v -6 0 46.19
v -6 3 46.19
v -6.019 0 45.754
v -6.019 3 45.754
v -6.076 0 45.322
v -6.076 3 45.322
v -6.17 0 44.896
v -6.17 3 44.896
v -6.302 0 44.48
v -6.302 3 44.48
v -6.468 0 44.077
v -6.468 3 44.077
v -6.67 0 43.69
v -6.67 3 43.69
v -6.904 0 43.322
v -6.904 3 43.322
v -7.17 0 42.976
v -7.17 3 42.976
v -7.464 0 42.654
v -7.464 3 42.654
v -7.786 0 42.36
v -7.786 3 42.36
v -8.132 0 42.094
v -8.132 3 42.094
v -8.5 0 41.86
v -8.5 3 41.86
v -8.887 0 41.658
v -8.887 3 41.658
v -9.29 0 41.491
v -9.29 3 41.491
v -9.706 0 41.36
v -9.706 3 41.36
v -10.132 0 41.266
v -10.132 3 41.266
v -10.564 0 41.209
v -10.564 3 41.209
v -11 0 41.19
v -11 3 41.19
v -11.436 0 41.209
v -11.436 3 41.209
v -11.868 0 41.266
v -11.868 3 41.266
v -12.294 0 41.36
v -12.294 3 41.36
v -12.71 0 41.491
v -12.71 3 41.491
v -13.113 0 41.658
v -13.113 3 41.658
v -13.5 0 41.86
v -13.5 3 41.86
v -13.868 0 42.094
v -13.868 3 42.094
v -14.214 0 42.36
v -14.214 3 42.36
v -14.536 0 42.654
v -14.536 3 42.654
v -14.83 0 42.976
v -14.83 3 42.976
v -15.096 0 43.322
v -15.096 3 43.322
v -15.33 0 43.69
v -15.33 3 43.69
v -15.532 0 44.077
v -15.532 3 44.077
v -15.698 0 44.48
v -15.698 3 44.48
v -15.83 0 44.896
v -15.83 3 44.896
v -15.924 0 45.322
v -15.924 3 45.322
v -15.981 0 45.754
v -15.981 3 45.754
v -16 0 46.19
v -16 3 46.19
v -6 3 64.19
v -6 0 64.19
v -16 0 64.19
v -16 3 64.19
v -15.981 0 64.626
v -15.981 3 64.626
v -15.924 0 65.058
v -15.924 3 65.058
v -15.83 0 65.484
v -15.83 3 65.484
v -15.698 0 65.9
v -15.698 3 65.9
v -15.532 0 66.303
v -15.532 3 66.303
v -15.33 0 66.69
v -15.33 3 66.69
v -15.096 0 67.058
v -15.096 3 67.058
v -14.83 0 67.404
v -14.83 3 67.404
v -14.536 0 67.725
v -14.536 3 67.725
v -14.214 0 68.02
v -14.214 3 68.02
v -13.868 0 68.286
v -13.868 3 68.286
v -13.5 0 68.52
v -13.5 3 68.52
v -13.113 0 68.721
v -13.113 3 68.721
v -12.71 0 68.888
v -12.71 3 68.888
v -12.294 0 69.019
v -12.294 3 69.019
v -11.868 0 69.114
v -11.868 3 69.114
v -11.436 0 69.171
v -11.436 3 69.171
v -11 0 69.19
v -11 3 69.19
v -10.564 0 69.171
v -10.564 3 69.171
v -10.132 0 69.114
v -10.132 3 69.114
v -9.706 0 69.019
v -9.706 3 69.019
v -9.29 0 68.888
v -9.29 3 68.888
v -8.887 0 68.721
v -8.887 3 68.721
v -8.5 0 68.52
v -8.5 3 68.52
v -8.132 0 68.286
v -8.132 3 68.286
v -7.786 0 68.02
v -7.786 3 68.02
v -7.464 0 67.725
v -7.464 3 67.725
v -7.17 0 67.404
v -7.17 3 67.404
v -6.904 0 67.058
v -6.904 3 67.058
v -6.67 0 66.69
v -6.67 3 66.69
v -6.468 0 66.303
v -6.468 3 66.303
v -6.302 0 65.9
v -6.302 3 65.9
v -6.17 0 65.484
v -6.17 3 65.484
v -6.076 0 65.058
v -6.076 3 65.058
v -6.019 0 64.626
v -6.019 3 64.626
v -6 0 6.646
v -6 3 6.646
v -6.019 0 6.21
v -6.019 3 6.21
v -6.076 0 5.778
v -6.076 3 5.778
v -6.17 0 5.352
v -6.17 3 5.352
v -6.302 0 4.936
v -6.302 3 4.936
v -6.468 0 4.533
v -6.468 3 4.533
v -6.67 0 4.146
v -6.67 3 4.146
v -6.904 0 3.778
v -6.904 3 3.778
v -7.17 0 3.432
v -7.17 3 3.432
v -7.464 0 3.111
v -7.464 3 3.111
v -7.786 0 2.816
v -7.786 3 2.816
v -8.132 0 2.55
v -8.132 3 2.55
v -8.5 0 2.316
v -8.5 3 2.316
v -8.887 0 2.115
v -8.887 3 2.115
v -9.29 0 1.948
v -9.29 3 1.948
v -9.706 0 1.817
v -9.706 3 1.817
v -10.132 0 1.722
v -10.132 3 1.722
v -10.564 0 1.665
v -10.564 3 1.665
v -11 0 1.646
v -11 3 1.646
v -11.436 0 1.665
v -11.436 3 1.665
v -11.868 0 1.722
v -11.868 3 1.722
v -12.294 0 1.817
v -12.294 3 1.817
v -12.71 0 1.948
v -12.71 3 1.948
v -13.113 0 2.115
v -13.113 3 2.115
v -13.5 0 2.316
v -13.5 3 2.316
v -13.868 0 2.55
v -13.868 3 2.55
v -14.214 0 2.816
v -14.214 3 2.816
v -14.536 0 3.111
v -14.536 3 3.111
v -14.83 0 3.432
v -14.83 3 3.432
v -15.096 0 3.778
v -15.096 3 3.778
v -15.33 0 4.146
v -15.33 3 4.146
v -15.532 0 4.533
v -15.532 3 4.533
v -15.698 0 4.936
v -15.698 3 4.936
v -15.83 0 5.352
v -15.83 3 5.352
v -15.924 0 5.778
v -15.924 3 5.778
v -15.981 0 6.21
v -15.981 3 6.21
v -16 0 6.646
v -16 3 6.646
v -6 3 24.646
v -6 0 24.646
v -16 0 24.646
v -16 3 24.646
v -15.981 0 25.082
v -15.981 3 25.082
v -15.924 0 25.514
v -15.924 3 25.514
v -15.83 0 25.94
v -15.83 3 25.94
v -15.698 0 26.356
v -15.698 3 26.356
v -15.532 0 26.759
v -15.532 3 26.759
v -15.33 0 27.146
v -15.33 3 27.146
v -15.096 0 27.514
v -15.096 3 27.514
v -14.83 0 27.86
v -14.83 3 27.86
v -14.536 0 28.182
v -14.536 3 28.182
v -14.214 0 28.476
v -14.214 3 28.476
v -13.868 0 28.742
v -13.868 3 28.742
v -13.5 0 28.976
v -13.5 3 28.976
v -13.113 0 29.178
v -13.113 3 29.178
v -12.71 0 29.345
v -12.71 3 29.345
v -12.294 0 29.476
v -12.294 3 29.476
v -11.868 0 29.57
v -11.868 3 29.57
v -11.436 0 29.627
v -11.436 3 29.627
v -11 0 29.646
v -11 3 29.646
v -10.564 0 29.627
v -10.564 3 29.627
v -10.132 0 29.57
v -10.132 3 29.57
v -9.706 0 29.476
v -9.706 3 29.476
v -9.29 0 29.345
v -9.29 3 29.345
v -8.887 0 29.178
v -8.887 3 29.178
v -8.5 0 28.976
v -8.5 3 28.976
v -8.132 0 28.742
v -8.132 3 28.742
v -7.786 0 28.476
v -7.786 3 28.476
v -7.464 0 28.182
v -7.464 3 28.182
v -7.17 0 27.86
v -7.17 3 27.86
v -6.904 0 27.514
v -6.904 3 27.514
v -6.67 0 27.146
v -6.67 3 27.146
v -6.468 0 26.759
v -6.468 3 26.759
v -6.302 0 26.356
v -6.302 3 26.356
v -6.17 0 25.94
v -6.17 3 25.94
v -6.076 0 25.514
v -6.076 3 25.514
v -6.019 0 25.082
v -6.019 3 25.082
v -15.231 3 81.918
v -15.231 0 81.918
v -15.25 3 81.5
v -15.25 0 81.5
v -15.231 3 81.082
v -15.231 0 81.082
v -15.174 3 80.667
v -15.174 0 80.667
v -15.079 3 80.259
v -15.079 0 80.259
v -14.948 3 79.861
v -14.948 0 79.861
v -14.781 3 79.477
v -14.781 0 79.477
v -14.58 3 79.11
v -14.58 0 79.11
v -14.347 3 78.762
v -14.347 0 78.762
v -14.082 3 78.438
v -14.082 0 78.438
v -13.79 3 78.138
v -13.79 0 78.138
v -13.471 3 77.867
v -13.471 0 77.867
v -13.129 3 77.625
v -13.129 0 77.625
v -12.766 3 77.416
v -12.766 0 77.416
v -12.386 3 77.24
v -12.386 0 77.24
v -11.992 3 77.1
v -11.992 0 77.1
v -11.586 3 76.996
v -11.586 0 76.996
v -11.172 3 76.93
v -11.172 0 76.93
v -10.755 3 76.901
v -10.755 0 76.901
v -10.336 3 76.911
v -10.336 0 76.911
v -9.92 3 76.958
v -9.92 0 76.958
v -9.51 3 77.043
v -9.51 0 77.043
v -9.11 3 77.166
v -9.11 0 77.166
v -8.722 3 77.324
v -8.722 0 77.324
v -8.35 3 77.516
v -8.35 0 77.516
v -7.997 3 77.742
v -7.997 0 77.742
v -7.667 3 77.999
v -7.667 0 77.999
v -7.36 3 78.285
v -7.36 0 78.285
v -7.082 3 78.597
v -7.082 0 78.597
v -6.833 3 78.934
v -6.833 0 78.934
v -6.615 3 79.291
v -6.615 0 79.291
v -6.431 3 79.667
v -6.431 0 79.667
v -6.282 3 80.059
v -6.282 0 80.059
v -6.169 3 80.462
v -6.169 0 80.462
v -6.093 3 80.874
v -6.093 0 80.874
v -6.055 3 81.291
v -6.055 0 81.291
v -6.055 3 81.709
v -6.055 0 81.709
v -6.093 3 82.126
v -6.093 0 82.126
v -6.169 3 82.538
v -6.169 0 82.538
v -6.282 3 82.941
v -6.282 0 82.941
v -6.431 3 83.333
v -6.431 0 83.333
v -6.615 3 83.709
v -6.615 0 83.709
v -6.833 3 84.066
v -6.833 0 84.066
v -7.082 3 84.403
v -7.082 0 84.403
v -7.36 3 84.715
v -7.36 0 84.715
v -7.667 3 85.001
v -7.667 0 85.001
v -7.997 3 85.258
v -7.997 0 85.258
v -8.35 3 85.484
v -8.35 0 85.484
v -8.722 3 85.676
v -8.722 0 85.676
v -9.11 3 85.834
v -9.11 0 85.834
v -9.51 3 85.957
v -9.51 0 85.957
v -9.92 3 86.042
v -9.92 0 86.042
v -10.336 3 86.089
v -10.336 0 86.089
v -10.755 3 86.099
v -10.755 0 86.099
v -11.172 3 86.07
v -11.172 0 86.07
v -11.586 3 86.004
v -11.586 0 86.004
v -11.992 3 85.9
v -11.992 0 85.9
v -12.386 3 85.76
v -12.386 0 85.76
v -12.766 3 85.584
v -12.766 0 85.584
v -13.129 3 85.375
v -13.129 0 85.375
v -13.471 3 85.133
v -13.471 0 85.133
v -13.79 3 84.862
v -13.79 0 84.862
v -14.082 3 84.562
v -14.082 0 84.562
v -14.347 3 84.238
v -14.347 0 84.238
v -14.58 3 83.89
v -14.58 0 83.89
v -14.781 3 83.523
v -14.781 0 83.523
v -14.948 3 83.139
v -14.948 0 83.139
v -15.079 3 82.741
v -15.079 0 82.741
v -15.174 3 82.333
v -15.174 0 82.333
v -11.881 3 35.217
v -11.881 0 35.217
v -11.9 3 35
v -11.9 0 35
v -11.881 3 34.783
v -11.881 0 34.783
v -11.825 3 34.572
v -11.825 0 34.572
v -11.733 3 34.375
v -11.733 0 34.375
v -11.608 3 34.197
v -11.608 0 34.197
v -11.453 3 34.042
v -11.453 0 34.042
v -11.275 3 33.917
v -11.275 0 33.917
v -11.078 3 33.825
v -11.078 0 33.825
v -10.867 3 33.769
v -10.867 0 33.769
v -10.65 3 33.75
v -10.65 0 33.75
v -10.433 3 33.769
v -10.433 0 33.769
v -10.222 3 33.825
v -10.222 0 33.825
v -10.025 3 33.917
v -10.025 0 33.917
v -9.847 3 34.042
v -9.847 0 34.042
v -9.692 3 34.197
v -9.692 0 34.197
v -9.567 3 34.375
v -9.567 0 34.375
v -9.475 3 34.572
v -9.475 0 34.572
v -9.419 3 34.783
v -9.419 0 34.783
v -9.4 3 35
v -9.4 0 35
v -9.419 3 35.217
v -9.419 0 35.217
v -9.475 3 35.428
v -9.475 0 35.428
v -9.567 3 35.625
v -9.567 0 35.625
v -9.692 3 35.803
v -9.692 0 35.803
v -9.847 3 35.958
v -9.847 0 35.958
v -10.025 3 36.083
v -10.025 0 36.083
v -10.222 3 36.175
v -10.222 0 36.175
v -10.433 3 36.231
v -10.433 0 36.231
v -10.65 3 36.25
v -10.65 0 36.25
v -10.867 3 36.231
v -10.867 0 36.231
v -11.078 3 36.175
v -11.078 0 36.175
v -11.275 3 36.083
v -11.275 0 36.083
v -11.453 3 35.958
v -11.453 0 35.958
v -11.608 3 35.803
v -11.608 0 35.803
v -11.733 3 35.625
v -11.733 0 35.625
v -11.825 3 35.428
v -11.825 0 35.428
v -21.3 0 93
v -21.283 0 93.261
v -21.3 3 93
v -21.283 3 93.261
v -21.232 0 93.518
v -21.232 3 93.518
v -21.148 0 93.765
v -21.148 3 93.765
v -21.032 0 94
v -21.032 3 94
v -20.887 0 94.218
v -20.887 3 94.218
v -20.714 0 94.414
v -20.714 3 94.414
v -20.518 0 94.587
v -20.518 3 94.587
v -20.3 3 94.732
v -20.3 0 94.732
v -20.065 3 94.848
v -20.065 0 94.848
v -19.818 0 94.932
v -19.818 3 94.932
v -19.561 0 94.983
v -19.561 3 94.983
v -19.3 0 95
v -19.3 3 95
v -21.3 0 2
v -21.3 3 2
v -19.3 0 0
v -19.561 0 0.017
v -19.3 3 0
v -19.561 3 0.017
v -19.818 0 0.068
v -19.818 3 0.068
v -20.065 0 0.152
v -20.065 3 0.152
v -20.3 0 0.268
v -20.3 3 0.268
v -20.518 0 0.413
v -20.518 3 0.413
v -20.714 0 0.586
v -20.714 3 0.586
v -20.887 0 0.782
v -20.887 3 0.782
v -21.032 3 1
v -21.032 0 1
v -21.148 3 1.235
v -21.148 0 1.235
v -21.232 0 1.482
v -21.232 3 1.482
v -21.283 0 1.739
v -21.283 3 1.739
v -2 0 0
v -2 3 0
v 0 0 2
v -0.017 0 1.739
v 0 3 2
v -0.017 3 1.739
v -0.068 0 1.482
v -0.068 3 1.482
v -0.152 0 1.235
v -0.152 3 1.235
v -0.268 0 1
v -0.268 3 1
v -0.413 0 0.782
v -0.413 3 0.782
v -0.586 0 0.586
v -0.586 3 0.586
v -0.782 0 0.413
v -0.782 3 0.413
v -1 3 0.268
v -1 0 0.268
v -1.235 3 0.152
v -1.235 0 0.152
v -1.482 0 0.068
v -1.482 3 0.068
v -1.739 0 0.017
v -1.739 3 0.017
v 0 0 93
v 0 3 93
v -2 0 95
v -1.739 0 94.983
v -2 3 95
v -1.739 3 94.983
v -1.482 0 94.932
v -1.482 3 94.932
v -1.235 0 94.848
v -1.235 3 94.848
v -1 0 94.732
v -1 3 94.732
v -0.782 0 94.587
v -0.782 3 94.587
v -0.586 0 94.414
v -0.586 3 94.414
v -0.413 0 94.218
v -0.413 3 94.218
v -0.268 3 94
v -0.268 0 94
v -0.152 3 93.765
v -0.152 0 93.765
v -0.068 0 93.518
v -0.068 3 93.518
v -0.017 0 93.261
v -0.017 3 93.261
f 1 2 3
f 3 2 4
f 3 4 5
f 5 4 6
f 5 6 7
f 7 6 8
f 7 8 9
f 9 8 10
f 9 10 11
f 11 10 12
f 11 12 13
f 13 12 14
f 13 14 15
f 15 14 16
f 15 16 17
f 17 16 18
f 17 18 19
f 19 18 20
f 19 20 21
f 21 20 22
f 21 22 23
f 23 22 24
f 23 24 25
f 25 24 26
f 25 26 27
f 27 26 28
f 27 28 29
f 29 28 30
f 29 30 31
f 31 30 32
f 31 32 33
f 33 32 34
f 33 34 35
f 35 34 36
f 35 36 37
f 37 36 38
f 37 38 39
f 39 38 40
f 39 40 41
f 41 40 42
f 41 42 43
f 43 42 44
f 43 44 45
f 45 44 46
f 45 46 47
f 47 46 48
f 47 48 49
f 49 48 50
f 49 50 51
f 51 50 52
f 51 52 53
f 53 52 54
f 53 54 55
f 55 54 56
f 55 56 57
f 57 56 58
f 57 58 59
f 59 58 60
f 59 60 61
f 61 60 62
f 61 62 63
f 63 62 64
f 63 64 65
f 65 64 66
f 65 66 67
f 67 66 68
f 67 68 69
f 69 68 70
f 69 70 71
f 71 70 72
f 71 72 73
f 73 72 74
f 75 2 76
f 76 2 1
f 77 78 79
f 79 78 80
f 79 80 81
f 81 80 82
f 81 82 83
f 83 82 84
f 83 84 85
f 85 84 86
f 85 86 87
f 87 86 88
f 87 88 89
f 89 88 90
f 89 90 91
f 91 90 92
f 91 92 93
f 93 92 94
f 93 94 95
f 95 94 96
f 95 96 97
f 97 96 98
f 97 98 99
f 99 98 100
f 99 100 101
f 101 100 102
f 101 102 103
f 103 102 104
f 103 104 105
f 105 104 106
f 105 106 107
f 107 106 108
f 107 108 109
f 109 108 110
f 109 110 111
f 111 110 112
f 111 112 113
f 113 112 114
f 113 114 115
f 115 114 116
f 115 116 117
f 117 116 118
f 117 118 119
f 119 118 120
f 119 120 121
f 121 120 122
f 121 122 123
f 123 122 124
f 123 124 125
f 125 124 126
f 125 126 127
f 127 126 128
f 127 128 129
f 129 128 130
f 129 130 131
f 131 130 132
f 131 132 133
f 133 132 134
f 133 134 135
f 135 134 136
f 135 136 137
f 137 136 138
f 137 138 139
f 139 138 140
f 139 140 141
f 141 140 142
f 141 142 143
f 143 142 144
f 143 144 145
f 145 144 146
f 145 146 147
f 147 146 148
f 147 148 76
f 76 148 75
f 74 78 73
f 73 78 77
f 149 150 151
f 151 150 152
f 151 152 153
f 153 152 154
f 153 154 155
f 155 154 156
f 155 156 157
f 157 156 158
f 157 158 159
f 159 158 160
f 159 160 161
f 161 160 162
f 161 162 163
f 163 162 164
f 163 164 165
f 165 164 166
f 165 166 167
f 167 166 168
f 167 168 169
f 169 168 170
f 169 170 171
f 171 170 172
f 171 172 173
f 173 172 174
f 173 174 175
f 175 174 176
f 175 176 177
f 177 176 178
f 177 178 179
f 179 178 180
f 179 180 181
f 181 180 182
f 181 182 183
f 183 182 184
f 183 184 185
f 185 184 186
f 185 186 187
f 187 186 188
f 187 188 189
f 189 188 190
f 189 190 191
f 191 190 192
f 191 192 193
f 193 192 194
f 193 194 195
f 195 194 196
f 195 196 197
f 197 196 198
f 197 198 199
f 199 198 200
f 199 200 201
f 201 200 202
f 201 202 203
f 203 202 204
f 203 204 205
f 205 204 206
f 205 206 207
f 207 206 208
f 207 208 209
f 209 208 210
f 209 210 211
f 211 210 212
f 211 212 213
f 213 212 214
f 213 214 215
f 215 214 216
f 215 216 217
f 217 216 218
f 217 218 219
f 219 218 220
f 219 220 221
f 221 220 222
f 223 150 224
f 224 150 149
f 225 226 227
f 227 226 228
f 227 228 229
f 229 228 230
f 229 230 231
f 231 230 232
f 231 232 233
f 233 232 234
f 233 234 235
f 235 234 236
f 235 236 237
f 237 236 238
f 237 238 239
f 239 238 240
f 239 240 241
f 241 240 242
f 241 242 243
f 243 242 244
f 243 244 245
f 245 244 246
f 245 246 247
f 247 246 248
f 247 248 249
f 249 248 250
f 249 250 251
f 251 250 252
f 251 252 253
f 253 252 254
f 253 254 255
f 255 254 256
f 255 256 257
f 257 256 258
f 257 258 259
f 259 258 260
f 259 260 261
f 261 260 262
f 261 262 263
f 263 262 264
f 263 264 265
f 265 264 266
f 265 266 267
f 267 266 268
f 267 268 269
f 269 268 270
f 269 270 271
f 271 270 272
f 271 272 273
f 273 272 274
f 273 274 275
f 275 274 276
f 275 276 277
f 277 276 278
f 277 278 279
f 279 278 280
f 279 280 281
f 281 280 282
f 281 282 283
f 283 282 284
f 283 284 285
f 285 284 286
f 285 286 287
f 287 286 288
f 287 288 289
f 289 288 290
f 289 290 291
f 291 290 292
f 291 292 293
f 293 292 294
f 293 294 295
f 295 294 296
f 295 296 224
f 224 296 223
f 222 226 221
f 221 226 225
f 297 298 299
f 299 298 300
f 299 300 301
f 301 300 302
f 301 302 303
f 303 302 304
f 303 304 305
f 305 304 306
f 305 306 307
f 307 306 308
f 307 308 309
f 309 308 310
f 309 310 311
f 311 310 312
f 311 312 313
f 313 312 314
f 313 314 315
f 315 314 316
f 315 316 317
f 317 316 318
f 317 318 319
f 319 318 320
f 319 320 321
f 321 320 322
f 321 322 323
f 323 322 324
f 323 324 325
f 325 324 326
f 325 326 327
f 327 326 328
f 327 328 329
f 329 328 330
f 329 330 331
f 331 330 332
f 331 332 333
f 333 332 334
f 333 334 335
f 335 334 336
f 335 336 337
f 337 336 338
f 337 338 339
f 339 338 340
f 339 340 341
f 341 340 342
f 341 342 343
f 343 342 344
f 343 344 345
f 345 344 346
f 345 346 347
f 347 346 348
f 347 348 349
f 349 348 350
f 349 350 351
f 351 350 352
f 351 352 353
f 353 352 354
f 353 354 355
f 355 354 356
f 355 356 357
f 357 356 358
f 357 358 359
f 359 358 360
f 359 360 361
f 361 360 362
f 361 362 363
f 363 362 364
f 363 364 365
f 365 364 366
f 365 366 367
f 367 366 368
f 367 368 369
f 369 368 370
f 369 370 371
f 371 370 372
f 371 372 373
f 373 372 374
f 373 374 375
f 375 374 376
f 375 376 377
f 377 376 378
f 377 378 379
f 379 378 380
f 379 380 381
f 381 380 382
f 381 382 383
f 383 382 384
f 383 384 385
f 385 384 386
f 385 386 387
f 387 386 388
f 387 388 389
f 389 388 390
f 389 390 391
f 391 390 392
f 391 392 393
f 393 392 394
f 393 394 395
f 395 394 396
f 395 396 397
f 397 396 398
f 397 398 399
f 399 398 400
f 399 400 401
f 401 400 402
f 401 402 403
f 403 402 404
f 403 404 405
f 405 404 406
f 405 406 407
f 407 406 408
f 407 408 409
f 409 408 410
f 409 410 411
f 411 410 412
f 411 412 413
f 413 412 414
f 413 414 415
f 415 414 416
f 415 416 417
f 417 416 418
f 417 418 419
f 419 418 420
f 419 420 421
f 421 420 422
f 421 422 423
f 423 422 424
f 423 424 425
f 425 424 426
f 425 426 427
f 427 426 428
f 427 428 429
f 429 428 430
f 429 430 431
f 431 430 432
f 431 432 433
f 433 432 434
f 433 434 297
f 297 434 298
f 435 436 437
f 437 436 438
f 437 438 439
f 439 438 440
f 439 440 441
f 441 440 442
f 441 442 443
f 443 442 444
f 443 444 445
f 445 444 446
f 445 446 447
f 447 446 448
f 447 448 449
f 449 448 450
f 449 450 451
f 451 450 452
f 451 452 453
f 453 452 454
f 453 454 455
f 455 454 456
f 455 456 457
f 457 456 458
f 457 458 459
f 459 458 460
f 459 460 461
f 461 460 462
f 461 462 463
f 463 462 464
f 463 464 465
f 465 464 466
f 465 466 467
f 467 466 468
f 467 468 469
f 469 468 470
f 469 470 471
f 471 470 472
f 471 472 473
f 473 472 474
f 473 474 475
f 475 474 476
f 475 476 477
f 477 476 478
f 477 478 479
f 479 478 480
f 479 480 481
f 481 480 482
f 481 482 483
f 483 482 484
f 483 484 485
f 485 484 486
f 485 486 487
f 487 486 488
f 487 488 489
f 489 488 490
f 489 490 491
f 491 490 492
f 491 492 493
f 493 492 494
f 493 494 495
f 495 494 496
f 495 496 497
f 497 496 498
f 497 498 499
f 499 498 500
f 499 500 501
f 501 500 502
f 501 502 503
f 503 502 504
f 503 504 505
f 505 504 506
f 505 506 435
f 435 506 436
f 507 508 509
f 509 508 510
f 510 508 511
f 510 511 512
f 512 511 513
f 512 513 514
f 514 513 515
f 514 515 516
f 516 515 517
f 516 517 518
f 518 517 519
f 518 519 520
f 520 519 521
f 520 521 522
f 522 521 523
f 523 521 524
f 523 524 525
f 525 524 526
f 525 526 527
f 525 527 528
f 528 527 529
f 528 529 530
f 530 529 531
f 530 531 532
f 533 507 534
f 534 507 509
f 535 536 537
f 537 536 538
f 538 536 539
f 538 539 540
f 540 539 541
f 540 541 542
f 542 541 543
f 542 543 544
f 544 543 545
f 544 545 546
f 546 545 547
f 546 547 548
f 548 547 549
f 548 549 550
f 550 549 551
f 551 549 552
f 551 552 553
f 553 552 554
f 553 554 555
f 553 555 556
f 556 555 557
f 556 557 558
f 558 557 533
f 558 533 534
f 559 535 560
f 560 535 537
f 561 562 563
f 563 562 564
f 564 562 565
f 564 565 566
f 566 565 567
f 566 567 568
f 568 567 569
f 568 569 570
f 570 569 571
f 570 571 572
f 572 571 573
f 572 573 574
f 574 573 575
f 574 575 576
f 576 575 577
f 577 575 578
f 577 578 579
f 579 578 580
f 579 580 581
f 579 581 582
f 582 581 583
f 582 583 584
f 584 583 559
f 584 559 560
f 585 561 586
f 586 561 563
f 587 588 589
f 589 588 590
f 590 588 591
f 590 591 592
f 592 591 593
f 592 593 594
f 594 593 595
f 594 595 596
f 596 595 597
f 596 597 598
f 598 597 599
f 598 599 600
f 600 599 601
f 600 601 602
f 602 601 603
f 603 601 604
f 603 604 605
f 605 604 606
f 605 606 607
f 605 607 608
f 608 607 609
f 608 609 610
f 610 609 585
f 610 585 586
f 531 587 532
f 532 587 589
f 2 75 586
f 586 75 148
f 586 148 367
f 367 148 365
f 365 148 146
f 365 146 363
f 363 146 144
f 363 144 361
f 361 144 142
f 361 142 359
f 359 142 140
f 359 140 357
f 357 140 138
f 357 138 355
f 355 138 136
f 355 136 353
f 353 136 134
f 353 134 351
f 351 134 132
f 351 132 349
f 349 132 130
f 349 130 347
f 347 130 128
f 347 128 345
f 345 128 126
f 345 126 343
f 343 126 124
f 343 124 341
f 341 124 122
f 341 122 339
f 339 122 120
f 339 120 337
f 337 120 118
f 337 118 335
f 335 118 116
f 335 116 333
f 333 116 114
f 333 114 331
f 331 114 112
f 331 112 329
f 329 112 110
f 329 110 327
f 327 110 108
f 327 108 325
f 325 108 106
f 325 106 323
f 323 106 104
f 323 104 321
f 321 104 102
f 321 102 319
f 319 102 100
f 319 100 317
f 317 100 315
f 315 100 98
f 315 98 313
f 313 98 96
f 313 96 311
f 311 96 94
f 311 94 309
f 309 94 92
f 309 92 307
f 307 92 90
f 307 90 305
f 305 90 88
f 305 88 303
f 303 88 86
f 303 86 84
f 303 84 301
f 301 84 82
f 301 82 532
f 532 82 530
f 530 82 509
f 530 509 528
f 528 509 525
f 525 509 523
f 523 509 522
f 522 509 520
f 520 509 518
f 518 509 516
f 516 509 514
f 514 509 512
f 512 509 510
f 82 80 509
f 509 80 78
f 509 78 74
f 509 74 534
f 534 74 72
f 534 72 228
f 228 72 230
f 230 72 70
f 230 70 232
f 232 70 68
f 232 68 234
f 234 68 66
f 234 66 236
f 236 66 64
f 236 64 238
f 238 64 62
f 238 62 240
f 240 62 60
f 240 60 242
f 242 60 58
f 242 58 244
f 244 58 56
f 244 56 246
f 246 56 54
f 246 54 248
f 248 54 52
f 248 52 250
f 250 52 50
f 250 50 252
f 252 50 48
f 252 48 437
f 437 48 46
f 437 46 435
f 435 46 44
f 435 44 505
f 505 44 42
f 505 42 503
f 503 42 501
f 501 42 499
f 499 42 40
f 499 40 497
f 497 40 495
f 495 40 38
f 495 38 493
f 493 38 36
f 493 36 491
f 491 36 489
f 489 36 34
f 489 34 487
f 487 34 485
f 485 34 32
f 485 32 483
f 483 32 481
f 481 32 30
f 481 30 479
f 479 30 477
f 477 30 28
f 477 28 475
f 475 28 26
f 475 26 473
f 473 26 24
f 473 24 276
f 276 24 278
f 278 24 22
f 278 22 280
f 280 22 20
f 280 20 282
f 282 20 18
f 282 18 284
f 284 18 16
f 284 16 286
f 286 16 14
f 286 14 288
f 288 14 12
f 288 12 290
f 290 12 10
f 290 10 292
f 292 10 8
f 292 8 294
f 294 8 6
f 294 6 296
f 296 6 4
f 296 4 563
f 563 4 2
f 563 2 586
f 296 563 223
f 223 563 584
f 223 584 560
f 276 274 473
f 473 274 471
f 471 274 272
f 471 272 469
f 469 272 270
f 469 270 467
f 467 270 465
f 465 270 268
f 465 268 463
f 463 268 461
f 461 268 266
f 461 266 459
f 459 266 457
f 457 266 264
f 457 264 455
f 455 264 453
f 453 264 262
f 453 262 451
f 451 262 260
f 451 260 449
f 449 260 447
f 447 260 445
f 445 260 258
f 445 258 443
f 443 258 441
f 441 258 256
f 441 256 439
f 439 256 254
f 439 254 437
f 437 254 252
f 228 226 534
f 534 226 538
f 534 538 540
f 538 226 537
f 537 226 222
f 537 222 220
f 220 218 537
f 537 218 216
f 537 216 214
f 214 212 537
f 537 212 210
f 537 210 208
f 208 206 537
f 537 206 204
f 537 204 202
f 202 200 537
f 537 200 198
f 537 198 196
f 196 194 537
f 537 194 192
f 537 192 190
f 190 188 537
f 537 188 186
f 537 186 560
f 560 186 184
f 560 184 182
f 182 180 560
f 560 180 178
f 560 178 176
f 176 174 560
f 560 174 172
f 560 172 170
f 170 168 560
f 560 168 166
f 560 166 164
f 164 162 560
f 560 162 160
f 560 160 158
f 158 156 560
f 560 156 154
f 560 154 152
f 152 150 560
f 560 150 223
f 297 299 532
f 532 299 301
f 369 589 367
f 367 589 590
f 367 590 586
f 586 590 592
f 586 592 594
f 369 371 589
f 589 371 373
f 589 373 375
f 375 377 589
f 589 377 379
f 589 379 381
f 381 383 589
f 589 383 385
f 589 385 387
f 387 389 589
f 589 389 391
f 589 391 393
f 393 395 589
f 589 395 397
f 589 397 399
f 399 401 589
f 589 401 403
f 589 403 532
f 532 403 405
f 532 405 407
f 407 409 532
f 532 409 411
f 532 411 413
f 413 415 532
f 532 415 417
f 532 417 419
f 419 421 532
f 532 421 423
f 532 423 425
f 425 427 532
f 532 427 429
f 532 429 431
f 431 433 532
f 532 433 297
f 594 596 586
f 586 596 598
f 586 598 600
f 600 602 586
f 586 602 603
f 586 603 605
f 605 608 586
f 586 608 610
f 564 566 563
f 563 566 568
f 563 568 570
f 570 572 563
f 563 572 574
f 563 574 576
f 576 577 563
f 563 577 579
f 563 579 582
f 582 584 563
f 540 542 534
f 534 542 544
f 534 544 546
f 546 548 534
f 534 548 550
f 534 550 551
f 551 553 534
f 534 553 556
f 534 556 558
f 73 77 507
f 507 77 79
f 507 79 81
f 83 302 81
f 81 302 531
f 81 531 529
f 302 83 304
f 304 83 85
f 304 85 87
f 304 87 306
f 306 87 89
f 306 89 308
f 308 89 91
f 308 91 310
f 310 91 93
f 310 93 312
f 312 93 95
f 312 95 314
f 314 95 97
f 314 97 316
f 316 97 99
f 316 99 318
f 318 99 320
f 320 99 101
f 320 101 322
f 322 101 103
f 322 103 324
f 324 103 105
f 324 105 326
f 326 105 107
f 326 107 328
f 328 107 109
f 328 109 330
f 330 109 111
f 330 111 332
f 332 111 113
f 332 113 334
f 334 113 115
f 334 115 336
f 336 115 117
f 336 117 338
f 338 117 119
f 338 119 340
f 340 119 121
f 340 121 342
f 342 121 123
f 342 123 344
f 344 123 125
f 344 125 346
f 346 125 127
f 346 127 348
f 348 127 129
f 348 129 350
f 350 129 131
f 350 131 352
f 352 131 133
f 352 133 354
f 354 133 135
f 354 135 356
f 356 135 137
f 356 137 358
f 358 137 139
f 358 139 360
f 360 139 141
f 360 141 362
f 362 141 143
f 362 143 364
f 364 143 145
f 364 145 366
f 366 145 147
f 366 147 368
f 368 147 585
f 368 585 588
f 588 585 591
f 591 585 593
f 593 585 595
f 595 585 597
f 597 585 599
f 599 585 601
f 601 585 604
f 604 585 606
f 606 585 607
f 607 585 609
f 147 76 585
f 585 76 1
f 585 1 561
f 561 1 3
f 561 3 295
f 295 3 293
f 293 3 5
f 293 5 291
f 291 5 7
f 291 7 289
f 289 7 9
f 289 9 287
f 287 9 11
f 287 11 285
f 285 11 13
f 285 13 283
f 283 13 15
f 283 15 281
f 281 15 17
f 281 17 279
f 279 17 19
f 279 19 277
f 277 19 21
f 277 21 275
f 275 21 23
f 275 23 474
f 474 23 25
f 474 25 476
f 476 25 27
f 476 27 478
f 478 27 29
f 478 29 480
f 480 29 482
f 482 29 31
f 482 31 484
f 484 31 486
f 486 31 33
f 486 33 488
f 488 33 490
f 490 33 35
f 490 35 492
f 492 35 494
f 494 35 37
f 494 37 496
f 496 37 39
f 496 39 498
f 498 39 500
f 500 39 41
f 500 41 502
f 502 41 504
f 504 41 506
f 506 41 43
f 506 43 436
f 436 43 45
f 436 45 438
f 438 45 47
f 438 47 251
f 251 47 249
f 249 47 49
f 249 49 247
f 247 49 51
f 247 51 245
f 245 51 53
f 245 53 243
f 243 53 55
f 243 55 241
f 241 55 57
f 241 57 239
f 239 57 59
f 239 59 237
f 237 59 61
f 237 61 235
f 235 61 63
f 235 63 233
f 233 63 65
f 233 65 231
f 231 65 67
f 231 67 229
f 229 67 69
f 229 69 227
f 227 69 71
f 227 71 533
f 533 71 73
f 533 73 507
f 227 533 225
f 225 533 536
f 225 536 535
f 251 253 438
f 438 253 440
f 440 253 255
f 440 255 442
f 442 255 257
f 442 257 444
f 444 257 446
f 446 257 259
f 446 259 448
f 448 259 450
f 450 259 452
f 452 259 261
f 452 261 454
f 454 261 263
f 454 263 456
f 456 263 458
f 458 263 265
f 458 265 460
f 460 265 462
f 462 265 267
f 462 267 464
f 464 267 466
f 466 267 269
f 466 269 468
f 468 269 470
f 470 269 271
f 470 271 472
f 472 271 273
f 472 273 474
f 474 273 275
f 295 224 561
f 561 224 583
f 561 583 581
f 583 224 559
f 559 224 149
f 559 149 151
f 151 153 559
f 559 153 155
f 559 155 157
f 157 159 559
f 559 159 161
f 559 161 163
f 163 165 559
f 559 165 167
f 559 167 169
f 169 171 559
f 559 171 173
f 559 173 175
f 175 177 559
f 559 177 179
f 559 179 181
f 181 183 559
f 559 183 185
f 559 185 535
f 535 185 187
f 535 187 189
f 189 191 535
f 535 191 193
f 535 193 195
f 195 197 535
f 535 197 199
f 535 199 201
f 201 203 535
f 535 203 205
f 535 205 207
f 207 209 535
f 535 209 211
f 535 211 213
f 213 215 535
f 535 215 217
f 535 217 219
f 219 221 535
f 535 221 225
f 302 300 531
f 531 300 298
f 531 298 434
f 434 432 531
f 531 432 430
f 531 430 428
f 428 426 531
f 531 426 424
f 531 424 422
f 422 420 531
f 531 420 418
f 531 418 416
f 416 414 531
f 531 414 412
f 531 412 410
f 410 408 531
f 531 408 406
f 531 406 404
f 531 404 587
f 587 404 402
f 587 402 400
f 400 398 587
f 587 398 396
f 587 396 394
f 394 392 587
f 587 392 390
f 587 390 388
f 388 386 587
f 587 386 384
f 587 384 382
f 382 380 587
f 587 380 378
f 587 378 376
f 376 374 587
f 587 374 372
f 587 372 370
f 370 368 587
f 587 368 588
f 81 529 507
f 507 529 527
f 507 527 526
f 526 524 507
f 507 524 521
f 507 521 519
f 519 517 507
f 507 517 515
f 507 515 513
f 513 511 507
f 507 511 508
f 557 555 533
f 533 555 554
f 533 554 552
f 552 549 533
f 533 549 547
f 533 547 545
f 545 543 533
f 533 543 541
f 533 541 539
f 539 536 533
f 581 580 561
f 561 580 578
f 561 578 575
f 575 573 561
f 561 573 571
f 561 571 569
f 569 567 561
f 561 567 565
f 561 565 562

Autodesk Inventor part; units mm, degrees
ref_plane "YZ Plane" through (0, 0, 0) normal (1, 0, 0) x (0, 1, 0)
ref_plane "XZ Plane" through (0, 0, 0) normal (0, 1, 0) x (-1, 0, 0)
ref_plane "XY Plane" through (0, 0, 0) normal (0, 0, 1) x (1, 0, 0)
sketch "Sketch1" plane through (0, 0, 0) normal (0, 1, 0) x (-1, 0, 0)
  line L0 (2, 0) -> (19.3, 0)
  line L1 (21.3, 2) -> (21.3, 93)
  line L2 (19.3, 95) -> (2, 95)
  line L3 (0, 93) -> (0, 2)
  circle A0 centre (10.65, 35) radius 1.25
  arc A1 (21.3, 93) -> (19.3, 95) centre (19.3, 93) ccw
  arc A2 (2, 95) -> (0, 93) centre (2, 93) ccw
  arc A3 (0, 2) -> (2, 0) centre (2, 2) ccw
  arc A4 (19.3, 0) -> (21.3, 2) centre (19.3, 2) ccw
  circle A5 centre (10.65, 81.5) radius 4.6
  line L4 (11, 46.1899) -> (11, 64.1899) construction
  line L5 (6, 46.1899) -> (6, 64.1899)
  line L6 (16, 64.1899) -> (16, 46.1899)
  arc A6 (6, 46.1899) -> (16, 46.1899) centre (11, 46.1899) ccw
  arc A7 (16, 64.1899) -> (6, 64.1899) centre (11, 64.1899) ccw
  line L7 (11, 6.6463) -> (11, 24.6463) construction
  line L8 (6, 6.6463) -> (6, 24.6463)
  line L9 (16, 24.6463) -> (16, 6.6463)
  arc A8 (6, 6.6463) -> (16, 6.6463) centre (11, 6.6463) ccw
  arc A9 (16, 24.6463) -> (6, 24.6463) centre (11, 24.6463) ccw
  point P0 (0, 0)
  point P1 (21.3, 95)
  point P2 (21.3, 0)
  point P3 (11, 55.1899)
  point P4 (11, 15.6463)
  dimension "d0" = 21.3
  dimension "d1" = 95
  dimension "d2" = 2.5
  dimension "d3" = 35
  dimension "d6" = 10.65
  dimension "d8" = 2
  dimension "d9" = 9.2
  dimension "d10" = 46.5
  dimension "d13" = 18
  dimension "d14" = 5
  dimension "d17" = 11.1898
  dimension "d18" = 18
  dimension "d19" = 5
extrude "Extrusion1" add sketch "Sketch1" along normal blind 3 contours A3 L3 A2 L2 A1 L1 A4 L0 | L5 A7 L6 A6 | L8 A9 L9 A8
extrude "Extrusion2" cut sketch "Sketch1" along normal through all contours L5 A7 L6 A6 | L8 A9 L9 A8
equation "\"d6\" = 0.5 * d0"
equation "\"d19\" = d14"
properties part number "12mero"
